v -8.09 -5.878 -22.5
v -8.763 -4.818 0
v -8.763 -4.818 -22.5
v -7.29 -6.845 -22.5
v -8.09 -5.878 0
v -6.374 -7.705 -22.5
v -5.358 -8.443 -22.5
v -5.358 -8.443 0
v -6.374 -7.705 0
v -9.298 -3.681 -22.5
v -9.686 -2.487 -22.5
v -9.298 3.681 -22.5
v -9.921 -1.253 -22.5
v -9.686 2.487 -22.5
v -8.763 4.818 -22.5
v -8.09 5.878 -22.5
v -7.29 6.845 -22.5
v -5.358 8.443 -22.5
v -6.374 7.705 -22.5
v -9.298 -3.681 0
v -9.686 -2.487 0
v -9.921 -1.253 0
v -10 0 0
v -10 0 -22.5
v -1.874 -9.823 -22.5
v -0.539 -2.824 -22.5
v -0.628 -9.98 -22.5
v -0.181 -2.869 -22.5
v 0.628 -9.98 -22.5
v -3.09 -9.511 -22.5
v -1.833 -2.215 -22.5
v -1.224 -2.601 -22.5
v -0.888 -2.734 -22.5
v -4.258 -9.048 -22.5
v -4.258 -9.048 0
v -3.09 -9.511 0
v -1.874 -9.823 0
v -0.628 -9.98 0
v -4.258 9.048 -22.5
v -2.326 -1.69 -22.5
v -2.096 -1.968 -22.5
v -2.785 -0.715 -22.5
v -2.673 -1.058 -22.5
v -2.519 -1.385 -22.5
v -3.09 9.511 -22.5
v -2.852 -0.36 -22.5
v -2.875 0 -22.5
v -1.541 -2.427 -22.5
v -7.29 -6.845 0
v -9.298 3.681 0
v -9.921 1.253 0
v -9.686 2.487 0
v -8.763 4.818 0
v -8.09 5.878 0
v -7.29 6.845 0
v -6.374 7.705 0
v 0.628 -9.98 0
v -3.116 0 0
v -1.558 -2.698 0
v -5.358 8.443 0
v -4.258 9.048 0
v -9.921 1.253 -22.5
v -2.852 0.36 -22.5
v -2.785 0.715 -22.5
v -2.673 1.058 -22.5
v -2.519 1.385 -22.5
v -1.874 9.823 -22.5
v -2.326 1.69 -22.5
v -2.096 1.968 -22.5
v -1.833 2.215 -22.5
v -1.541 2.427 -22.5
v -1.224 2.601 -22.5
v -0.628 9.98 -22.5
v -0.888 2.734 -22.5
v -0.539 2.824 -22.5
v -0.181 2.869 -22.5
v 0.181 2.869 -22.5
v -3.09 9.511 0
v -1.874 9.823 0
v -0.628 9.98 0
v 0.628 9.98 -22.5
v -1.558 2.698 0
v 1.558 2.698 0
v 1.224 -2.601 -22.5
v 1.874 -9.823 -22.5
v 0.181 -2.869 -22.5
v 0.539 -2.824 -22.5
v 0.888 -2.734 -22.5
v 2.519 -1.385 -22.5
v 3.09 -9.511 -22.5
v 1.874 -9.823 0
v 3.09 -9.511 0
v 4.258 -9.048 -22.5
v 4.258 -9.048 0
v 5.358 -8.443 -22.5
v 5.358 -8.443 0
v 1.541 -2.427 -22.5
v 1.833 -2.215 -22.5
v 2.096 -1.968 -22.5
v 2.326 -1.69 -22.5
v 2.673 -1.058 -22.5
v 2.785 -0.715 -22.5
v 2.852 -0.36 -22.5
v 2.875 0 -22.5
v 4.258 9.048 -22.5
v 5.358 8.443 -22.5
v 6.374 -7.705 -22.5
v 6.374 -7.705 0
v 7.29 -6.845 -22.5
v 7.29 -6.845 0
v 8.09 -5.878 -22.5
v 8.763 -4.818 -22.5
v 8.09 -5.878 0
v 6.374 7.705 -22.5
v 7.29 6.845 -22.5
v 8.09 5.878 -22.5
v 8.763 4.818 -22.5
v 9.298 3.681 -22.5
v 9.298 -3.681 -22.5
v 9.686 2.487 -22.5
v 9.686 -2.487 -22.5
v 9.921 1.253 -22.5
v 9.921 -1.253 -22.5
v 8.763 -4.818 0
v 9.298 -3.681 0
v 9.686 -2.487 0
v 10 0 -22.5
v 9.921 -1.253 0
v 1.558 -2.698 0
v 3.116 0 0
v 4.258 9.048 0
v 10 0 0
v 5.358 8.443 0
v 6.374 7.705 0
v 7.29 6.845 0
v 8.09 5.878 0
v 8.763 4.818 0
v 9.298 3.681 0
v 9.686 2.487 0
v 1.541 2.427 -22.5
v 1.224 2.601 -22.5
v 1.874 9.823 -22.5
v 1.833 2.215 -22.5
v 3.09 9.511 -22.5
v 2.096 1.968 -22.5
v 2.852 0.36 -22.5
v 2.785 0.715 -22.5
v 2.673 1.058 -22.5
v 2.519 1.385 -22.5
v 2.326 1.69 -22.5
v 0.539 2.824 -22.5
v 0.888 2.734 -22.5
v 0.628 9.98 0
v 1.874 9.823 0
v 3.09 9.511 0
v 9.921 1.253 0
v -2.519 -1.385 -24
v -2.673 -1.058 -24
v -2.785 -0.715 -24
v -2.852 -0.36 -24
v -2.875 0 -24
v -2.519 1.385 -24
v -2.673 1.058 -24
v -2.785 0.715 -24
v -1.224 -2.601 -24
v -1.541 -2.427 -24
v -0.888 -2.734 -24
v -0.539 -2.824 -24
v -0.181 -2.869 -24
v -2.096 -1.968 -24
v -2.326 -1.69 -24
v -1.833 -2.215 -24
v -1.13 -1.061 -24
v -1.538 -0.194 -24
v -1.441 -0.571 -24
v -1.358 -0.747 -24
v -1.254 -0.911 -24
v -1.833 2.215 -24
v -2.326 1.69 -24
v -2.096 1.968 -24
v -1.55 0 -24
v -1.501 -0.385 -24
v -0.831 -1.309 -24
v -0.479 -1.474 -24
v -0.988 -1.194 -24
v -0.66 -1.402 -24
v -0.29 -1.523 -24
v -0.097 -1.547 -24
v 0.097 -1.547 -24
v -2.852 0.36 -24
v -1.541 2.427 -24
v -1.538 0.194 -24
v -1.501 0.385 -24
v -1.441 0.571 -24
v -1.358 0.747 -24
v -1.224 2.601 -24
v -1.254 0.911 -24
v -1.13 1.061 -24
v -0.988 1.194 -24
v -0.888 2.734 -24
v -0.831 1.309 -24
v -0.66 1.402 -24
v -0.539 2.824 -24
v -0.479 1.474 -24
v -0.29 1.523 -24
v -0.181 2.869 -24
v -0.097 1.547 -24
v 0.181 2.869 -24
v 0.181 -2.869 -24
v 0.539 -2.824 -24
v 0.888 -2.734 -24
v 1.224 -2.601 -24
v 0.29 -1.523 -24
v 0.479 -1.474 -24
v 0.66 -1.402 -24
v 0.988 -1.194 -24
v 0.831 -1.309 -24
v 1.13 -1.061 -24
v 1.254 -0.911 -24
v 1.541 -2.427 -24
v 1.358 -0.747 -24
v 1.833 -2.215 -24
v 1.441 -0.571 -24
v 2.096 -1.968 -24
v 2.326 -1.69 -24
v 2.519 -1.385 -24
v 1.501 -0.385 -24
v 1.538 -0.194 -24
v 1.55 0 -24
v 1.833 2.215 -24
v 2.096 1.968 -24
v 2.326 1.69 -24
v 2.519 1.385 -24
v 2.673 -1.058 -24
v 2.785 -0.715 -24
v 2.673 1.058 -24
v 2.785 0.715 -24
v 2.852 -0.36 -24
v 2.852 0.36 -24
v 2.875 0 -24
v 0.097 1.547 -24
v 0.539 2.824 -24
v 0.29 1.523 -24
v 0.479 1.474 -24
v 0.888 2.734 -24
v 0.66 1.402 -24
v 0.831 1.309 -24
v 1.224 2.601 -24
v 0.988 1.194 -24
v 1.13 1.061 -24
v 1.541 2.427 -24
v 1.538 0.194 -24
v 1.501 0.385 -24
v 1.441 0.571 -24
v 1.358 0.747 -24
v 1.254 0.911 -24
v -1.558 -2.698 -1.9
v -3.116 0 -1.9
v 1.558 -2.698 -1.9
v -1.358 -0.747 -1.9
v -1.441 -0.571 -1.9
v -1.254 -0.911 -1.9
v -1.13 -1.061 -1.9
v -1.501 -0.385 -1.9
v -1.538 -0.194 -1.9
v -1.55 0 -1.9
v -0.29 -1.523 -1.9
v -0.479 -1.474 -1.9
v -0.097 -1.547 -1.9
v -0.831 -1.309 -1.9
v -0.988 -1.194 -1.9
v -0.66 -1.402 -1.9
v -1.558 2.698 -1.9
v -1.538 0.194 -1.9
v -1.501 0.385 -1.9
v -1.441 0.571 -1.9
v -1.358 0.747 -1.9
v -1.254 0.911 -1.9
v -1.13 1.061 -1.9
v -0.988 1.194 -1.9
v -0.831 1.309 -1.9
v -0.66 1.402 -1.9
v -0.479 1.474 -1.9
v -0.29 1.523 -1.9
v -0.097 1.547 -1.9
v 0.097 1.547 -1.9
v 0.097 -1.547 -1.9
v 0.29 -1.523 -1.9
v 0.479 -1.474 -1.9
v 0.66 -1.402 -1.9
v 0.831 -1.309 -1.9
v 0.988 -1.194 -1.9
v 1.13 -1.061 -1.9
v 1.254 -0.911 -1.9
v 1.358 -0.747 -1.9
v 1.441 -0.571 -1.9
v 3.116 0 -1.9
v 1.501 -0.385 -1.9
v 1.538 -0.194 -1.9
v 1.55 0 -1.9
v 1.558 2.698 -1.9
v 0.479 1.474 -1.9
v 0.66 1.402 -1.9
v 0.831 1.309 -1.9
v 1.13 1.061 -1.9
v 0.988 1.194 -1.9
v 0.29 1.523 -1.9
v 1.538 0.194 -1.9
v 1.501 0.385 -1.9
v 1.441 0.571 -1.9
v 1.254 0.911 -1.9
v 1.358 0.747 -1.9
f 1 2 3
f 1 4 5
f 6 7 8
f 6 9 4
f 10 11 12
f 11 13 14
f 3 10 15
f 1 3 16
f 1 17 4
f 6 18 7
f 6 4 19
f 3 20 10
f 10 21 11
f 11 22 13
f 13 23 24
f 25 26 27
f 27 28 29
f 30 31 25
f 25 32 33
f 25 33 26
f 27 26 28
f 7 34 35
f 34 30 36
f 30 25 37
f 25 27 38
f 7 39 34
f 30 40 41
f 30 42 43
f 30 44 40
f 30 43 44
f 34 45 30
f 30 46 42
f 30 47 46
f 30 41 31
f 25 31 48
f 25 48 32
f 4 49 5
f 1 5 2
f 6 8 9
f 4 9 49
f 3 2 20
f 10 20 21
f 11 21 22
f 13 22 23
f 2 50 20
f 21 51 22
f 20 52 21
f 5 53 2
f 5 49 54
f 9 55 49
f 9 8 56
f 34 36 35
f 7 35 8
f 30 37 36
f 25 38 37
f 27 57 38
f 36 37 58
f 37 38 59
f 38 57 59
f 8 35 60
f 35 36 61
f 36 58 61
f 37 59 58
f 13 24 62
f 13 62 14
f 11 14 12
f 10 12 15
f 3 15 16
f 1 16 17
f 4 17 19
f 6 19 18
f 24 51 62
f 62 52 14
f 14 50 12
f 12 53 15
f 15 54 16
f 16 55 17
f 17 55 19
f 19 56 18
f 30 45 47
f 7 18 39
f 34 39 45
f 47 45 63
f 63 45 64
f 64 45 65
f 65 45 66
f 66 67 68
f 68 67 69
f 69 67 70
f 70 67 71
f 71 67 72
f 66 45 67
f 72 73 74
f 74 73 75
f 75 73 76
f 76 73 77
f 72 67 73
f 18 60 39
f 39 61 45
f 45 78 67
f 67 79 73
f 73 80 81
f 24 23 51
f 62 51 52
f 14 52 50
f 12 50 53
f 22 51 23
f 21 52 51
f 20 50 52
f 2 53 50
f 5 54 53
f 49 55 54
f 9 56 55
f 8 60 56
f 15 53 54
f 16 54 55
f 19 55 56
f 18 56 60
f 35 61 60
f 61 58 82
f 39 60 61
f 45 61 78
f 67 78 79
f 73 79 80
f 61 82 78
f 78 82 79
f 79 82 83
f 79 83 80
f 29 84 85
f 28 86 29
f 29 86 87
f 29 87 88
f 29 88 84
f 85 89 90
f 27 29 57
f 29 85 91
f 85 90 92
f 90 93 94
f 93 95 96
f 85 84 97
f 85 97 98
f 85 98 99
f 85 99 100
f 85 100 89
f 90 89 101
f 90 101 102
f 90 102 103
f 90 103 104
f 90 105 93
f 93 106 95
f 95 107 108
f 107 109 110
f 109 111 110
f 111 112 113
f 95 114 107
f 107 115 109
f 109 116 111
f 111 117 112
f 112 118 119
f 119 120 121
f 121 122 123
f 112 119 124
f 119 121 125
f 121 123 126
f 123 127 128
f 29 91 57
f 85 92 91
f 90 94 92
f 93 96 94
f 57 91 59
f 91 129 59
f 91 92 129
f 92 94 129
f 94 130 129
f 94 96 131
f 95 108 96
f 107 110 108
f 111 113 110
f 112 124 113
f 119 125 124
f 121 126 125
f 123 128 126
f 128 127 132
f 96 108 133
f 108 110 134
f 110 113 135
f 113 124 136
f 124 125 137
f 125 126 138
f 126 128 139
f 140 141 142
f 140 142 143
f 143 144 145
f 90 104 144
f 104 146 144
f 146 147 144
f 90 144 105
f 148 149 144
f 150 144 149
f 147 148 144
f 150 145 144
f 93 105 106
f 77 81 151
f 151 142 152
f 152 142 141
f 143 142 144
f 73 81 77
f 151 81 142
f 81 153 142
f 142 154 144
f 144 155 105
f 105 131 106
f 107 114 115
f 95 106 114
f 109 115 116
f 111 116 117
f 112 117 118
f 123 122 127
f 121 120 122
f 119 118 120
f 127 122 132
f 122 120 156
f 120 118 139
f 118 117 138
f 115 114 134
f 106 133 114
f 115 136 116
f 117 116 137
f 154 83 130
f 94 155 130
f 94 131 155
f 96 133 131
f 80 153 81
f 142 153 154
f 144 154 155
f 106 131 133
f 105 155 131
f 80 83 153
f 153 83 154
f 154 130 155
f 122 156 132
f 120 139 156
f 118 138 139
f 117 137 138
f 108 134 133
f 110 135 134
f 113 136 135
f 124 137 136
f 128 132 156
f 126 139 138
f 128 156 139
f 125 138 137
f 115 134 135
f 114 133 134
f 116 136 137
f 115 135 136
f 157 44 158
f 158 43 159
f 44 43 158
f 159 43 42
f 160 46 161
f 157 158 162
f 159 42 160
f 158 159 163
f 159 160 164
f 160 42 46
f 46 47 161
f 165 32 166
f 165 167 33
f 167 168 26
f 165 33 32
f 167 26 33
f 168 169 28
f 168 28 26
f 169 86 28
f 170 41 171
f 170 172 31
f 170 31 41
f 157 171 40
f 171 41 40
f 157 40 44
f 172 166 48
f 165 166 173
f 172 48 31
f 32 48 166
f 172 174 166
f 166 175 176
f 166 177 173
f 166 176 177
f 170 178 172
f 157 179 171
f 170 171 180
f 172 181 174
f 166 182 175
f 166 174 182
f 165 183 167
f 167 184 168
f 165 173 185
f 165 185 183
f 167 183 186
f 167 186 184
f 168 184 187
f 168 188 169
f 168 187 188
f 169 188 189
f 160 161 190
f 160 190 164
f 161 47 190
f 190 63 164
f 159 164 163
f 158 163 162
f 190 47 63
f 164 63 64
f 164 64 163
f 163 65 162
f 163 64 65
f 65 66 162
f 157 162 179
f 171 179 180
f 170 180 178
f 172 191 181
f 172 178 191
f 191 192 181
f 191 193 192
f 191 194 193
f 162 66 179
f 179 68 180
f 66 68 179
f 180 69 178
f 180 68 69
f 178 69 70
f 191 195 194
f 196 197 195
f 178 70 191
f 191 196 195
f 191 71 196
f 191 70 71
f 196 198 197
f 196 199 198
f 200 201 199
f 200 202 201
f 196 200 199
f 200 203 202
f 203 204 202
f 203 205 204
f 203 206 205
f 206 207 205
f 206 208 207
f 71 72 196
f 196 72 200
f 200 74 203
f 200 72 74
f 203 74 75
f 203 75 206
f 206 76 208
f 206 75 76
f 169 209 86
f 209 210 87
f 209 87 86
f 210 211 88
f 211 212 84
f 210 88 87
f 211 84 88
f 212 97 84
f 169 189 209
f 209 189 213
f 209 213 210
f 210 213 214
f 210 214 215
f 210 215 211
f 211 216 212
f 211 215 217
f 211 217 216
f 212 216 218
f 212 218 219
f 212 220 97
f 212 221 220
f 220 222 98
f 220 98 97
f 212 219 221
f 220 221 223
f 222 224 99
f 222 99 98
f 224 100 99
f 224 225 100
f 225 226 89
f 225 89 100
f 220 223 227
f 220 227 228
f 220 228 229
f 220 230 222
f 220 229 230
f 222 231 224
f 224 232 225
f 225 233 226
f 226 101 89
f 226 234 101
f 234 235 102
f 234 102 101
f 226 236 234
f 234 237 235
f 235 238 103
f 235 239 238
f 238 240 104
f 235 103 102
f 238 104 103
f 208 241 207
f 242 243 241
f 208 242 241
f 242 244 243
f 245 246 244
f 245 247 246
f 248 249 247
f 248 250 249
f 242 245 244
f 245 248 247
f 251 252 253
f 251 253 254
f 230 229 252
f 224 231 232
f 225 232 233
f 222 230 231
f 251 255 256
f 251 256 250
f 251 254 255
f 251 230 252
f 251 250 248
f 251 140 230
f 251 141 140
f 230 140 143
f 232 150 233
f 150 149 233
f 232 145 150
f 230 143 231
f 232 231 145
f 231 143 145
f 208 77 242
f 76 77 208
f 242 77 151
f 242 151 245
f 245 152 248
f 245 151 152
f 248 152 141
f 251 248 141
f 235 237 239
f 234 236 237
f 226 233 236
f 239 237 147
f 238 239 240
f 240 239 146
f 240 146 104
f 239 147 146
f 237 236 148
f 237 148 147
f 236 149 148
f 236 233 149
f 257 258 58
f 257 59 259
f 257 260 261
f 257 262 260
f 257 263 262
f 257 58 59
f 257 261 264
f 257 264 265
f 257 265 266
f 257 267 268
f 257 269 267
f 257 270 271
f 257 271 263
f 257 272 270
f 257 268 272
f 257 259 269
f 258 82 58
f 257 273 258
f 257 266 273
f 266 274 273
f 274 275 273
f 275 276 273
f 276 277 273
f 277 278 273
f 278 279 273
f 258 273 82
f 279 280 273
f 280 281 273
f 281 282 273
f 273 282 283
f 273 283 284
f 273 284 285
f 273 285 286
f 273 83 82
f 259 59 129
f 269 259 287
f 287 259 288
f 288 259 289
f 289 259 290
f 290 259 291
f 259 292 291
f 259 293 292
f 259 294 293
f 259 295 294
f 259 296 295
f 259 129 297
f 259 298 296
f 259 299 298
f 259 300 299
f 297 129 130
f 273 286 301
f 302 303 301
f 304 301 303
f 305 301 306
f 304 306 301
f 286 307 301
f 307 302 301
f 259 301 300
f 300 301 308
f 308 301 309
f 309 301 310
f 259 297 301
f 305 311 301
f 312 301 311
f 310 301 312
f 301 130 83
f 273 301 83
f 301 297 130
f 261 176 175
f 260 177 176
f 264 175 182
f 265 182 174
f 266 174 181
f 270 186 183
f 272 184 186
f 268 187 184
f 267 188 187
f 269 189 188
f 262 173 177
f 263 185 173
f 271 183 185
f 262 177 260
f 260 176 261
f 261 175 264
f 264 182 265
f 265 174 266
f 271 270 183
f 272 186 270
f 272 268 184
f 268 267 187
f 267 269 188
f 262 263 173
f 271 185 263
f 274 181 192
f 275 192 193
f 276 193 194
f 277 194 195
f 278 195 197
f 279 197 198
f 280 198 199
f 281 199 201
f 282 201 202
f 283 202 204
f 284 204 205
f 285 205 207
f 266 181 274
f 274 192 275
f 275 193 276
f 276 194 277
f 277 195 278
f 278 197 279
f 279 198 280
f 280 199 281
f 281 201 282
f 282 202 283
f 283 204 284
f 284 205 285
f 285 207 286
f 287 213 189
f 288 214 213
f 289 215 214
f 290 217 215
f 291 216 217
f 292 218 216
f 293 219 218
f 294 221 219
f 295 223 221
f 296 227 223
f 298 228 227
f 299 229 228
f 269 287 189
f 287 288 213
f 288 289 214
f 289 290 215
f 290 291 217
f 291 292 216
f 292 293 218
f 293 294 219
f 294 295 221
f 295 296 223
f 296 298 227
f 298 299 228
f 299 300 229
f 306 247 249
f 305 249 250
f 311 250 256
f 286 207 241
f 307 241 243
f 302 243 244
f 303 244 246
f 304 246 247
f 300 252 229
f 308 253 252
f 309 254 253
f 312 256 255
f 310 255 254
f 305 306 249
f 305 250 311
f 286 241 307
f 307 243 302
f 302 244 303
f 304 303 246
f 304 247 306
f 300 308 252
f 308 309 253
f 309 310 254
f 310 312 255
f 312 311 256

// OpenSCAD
$fn = 50;


difference() {
	union() {
		translate(v = [0, 0, -22.5000000000]) {
			cylinder(h = 22.5000000000, r = 10.0000000000);
		}
		#translate(v = [0, 0, -24.0000000000]) {
			cylinder(h = 24, r = 2.8750000000);
		}
	}
	union() {
		translate(v = [0, 0, 0]) {
			rotate(a = [0, 0, 0]) {
				difference() {
					union() {
						translate(v = [0, 0, -1.9000000000]) {
							linear_extrude(height = 1.9000000000) {
								polygon(points = [[3.1158000000, 0.0000000000], [1.5579000000, 2.6983619531], [-1.5579000000, 2.6983619531], [-3.1158000000, 0.0000000000], [-1.5579000000, -2.6983619531], [1.5579000000, -2.6983619531]]);
							}
						}
					}
					union();
				}
			}
		}
		#translate(v = [0, 0, -100.0000000000]) {
			cylinder(h = 200, r = 1.5500000000);
		}
	}
}
